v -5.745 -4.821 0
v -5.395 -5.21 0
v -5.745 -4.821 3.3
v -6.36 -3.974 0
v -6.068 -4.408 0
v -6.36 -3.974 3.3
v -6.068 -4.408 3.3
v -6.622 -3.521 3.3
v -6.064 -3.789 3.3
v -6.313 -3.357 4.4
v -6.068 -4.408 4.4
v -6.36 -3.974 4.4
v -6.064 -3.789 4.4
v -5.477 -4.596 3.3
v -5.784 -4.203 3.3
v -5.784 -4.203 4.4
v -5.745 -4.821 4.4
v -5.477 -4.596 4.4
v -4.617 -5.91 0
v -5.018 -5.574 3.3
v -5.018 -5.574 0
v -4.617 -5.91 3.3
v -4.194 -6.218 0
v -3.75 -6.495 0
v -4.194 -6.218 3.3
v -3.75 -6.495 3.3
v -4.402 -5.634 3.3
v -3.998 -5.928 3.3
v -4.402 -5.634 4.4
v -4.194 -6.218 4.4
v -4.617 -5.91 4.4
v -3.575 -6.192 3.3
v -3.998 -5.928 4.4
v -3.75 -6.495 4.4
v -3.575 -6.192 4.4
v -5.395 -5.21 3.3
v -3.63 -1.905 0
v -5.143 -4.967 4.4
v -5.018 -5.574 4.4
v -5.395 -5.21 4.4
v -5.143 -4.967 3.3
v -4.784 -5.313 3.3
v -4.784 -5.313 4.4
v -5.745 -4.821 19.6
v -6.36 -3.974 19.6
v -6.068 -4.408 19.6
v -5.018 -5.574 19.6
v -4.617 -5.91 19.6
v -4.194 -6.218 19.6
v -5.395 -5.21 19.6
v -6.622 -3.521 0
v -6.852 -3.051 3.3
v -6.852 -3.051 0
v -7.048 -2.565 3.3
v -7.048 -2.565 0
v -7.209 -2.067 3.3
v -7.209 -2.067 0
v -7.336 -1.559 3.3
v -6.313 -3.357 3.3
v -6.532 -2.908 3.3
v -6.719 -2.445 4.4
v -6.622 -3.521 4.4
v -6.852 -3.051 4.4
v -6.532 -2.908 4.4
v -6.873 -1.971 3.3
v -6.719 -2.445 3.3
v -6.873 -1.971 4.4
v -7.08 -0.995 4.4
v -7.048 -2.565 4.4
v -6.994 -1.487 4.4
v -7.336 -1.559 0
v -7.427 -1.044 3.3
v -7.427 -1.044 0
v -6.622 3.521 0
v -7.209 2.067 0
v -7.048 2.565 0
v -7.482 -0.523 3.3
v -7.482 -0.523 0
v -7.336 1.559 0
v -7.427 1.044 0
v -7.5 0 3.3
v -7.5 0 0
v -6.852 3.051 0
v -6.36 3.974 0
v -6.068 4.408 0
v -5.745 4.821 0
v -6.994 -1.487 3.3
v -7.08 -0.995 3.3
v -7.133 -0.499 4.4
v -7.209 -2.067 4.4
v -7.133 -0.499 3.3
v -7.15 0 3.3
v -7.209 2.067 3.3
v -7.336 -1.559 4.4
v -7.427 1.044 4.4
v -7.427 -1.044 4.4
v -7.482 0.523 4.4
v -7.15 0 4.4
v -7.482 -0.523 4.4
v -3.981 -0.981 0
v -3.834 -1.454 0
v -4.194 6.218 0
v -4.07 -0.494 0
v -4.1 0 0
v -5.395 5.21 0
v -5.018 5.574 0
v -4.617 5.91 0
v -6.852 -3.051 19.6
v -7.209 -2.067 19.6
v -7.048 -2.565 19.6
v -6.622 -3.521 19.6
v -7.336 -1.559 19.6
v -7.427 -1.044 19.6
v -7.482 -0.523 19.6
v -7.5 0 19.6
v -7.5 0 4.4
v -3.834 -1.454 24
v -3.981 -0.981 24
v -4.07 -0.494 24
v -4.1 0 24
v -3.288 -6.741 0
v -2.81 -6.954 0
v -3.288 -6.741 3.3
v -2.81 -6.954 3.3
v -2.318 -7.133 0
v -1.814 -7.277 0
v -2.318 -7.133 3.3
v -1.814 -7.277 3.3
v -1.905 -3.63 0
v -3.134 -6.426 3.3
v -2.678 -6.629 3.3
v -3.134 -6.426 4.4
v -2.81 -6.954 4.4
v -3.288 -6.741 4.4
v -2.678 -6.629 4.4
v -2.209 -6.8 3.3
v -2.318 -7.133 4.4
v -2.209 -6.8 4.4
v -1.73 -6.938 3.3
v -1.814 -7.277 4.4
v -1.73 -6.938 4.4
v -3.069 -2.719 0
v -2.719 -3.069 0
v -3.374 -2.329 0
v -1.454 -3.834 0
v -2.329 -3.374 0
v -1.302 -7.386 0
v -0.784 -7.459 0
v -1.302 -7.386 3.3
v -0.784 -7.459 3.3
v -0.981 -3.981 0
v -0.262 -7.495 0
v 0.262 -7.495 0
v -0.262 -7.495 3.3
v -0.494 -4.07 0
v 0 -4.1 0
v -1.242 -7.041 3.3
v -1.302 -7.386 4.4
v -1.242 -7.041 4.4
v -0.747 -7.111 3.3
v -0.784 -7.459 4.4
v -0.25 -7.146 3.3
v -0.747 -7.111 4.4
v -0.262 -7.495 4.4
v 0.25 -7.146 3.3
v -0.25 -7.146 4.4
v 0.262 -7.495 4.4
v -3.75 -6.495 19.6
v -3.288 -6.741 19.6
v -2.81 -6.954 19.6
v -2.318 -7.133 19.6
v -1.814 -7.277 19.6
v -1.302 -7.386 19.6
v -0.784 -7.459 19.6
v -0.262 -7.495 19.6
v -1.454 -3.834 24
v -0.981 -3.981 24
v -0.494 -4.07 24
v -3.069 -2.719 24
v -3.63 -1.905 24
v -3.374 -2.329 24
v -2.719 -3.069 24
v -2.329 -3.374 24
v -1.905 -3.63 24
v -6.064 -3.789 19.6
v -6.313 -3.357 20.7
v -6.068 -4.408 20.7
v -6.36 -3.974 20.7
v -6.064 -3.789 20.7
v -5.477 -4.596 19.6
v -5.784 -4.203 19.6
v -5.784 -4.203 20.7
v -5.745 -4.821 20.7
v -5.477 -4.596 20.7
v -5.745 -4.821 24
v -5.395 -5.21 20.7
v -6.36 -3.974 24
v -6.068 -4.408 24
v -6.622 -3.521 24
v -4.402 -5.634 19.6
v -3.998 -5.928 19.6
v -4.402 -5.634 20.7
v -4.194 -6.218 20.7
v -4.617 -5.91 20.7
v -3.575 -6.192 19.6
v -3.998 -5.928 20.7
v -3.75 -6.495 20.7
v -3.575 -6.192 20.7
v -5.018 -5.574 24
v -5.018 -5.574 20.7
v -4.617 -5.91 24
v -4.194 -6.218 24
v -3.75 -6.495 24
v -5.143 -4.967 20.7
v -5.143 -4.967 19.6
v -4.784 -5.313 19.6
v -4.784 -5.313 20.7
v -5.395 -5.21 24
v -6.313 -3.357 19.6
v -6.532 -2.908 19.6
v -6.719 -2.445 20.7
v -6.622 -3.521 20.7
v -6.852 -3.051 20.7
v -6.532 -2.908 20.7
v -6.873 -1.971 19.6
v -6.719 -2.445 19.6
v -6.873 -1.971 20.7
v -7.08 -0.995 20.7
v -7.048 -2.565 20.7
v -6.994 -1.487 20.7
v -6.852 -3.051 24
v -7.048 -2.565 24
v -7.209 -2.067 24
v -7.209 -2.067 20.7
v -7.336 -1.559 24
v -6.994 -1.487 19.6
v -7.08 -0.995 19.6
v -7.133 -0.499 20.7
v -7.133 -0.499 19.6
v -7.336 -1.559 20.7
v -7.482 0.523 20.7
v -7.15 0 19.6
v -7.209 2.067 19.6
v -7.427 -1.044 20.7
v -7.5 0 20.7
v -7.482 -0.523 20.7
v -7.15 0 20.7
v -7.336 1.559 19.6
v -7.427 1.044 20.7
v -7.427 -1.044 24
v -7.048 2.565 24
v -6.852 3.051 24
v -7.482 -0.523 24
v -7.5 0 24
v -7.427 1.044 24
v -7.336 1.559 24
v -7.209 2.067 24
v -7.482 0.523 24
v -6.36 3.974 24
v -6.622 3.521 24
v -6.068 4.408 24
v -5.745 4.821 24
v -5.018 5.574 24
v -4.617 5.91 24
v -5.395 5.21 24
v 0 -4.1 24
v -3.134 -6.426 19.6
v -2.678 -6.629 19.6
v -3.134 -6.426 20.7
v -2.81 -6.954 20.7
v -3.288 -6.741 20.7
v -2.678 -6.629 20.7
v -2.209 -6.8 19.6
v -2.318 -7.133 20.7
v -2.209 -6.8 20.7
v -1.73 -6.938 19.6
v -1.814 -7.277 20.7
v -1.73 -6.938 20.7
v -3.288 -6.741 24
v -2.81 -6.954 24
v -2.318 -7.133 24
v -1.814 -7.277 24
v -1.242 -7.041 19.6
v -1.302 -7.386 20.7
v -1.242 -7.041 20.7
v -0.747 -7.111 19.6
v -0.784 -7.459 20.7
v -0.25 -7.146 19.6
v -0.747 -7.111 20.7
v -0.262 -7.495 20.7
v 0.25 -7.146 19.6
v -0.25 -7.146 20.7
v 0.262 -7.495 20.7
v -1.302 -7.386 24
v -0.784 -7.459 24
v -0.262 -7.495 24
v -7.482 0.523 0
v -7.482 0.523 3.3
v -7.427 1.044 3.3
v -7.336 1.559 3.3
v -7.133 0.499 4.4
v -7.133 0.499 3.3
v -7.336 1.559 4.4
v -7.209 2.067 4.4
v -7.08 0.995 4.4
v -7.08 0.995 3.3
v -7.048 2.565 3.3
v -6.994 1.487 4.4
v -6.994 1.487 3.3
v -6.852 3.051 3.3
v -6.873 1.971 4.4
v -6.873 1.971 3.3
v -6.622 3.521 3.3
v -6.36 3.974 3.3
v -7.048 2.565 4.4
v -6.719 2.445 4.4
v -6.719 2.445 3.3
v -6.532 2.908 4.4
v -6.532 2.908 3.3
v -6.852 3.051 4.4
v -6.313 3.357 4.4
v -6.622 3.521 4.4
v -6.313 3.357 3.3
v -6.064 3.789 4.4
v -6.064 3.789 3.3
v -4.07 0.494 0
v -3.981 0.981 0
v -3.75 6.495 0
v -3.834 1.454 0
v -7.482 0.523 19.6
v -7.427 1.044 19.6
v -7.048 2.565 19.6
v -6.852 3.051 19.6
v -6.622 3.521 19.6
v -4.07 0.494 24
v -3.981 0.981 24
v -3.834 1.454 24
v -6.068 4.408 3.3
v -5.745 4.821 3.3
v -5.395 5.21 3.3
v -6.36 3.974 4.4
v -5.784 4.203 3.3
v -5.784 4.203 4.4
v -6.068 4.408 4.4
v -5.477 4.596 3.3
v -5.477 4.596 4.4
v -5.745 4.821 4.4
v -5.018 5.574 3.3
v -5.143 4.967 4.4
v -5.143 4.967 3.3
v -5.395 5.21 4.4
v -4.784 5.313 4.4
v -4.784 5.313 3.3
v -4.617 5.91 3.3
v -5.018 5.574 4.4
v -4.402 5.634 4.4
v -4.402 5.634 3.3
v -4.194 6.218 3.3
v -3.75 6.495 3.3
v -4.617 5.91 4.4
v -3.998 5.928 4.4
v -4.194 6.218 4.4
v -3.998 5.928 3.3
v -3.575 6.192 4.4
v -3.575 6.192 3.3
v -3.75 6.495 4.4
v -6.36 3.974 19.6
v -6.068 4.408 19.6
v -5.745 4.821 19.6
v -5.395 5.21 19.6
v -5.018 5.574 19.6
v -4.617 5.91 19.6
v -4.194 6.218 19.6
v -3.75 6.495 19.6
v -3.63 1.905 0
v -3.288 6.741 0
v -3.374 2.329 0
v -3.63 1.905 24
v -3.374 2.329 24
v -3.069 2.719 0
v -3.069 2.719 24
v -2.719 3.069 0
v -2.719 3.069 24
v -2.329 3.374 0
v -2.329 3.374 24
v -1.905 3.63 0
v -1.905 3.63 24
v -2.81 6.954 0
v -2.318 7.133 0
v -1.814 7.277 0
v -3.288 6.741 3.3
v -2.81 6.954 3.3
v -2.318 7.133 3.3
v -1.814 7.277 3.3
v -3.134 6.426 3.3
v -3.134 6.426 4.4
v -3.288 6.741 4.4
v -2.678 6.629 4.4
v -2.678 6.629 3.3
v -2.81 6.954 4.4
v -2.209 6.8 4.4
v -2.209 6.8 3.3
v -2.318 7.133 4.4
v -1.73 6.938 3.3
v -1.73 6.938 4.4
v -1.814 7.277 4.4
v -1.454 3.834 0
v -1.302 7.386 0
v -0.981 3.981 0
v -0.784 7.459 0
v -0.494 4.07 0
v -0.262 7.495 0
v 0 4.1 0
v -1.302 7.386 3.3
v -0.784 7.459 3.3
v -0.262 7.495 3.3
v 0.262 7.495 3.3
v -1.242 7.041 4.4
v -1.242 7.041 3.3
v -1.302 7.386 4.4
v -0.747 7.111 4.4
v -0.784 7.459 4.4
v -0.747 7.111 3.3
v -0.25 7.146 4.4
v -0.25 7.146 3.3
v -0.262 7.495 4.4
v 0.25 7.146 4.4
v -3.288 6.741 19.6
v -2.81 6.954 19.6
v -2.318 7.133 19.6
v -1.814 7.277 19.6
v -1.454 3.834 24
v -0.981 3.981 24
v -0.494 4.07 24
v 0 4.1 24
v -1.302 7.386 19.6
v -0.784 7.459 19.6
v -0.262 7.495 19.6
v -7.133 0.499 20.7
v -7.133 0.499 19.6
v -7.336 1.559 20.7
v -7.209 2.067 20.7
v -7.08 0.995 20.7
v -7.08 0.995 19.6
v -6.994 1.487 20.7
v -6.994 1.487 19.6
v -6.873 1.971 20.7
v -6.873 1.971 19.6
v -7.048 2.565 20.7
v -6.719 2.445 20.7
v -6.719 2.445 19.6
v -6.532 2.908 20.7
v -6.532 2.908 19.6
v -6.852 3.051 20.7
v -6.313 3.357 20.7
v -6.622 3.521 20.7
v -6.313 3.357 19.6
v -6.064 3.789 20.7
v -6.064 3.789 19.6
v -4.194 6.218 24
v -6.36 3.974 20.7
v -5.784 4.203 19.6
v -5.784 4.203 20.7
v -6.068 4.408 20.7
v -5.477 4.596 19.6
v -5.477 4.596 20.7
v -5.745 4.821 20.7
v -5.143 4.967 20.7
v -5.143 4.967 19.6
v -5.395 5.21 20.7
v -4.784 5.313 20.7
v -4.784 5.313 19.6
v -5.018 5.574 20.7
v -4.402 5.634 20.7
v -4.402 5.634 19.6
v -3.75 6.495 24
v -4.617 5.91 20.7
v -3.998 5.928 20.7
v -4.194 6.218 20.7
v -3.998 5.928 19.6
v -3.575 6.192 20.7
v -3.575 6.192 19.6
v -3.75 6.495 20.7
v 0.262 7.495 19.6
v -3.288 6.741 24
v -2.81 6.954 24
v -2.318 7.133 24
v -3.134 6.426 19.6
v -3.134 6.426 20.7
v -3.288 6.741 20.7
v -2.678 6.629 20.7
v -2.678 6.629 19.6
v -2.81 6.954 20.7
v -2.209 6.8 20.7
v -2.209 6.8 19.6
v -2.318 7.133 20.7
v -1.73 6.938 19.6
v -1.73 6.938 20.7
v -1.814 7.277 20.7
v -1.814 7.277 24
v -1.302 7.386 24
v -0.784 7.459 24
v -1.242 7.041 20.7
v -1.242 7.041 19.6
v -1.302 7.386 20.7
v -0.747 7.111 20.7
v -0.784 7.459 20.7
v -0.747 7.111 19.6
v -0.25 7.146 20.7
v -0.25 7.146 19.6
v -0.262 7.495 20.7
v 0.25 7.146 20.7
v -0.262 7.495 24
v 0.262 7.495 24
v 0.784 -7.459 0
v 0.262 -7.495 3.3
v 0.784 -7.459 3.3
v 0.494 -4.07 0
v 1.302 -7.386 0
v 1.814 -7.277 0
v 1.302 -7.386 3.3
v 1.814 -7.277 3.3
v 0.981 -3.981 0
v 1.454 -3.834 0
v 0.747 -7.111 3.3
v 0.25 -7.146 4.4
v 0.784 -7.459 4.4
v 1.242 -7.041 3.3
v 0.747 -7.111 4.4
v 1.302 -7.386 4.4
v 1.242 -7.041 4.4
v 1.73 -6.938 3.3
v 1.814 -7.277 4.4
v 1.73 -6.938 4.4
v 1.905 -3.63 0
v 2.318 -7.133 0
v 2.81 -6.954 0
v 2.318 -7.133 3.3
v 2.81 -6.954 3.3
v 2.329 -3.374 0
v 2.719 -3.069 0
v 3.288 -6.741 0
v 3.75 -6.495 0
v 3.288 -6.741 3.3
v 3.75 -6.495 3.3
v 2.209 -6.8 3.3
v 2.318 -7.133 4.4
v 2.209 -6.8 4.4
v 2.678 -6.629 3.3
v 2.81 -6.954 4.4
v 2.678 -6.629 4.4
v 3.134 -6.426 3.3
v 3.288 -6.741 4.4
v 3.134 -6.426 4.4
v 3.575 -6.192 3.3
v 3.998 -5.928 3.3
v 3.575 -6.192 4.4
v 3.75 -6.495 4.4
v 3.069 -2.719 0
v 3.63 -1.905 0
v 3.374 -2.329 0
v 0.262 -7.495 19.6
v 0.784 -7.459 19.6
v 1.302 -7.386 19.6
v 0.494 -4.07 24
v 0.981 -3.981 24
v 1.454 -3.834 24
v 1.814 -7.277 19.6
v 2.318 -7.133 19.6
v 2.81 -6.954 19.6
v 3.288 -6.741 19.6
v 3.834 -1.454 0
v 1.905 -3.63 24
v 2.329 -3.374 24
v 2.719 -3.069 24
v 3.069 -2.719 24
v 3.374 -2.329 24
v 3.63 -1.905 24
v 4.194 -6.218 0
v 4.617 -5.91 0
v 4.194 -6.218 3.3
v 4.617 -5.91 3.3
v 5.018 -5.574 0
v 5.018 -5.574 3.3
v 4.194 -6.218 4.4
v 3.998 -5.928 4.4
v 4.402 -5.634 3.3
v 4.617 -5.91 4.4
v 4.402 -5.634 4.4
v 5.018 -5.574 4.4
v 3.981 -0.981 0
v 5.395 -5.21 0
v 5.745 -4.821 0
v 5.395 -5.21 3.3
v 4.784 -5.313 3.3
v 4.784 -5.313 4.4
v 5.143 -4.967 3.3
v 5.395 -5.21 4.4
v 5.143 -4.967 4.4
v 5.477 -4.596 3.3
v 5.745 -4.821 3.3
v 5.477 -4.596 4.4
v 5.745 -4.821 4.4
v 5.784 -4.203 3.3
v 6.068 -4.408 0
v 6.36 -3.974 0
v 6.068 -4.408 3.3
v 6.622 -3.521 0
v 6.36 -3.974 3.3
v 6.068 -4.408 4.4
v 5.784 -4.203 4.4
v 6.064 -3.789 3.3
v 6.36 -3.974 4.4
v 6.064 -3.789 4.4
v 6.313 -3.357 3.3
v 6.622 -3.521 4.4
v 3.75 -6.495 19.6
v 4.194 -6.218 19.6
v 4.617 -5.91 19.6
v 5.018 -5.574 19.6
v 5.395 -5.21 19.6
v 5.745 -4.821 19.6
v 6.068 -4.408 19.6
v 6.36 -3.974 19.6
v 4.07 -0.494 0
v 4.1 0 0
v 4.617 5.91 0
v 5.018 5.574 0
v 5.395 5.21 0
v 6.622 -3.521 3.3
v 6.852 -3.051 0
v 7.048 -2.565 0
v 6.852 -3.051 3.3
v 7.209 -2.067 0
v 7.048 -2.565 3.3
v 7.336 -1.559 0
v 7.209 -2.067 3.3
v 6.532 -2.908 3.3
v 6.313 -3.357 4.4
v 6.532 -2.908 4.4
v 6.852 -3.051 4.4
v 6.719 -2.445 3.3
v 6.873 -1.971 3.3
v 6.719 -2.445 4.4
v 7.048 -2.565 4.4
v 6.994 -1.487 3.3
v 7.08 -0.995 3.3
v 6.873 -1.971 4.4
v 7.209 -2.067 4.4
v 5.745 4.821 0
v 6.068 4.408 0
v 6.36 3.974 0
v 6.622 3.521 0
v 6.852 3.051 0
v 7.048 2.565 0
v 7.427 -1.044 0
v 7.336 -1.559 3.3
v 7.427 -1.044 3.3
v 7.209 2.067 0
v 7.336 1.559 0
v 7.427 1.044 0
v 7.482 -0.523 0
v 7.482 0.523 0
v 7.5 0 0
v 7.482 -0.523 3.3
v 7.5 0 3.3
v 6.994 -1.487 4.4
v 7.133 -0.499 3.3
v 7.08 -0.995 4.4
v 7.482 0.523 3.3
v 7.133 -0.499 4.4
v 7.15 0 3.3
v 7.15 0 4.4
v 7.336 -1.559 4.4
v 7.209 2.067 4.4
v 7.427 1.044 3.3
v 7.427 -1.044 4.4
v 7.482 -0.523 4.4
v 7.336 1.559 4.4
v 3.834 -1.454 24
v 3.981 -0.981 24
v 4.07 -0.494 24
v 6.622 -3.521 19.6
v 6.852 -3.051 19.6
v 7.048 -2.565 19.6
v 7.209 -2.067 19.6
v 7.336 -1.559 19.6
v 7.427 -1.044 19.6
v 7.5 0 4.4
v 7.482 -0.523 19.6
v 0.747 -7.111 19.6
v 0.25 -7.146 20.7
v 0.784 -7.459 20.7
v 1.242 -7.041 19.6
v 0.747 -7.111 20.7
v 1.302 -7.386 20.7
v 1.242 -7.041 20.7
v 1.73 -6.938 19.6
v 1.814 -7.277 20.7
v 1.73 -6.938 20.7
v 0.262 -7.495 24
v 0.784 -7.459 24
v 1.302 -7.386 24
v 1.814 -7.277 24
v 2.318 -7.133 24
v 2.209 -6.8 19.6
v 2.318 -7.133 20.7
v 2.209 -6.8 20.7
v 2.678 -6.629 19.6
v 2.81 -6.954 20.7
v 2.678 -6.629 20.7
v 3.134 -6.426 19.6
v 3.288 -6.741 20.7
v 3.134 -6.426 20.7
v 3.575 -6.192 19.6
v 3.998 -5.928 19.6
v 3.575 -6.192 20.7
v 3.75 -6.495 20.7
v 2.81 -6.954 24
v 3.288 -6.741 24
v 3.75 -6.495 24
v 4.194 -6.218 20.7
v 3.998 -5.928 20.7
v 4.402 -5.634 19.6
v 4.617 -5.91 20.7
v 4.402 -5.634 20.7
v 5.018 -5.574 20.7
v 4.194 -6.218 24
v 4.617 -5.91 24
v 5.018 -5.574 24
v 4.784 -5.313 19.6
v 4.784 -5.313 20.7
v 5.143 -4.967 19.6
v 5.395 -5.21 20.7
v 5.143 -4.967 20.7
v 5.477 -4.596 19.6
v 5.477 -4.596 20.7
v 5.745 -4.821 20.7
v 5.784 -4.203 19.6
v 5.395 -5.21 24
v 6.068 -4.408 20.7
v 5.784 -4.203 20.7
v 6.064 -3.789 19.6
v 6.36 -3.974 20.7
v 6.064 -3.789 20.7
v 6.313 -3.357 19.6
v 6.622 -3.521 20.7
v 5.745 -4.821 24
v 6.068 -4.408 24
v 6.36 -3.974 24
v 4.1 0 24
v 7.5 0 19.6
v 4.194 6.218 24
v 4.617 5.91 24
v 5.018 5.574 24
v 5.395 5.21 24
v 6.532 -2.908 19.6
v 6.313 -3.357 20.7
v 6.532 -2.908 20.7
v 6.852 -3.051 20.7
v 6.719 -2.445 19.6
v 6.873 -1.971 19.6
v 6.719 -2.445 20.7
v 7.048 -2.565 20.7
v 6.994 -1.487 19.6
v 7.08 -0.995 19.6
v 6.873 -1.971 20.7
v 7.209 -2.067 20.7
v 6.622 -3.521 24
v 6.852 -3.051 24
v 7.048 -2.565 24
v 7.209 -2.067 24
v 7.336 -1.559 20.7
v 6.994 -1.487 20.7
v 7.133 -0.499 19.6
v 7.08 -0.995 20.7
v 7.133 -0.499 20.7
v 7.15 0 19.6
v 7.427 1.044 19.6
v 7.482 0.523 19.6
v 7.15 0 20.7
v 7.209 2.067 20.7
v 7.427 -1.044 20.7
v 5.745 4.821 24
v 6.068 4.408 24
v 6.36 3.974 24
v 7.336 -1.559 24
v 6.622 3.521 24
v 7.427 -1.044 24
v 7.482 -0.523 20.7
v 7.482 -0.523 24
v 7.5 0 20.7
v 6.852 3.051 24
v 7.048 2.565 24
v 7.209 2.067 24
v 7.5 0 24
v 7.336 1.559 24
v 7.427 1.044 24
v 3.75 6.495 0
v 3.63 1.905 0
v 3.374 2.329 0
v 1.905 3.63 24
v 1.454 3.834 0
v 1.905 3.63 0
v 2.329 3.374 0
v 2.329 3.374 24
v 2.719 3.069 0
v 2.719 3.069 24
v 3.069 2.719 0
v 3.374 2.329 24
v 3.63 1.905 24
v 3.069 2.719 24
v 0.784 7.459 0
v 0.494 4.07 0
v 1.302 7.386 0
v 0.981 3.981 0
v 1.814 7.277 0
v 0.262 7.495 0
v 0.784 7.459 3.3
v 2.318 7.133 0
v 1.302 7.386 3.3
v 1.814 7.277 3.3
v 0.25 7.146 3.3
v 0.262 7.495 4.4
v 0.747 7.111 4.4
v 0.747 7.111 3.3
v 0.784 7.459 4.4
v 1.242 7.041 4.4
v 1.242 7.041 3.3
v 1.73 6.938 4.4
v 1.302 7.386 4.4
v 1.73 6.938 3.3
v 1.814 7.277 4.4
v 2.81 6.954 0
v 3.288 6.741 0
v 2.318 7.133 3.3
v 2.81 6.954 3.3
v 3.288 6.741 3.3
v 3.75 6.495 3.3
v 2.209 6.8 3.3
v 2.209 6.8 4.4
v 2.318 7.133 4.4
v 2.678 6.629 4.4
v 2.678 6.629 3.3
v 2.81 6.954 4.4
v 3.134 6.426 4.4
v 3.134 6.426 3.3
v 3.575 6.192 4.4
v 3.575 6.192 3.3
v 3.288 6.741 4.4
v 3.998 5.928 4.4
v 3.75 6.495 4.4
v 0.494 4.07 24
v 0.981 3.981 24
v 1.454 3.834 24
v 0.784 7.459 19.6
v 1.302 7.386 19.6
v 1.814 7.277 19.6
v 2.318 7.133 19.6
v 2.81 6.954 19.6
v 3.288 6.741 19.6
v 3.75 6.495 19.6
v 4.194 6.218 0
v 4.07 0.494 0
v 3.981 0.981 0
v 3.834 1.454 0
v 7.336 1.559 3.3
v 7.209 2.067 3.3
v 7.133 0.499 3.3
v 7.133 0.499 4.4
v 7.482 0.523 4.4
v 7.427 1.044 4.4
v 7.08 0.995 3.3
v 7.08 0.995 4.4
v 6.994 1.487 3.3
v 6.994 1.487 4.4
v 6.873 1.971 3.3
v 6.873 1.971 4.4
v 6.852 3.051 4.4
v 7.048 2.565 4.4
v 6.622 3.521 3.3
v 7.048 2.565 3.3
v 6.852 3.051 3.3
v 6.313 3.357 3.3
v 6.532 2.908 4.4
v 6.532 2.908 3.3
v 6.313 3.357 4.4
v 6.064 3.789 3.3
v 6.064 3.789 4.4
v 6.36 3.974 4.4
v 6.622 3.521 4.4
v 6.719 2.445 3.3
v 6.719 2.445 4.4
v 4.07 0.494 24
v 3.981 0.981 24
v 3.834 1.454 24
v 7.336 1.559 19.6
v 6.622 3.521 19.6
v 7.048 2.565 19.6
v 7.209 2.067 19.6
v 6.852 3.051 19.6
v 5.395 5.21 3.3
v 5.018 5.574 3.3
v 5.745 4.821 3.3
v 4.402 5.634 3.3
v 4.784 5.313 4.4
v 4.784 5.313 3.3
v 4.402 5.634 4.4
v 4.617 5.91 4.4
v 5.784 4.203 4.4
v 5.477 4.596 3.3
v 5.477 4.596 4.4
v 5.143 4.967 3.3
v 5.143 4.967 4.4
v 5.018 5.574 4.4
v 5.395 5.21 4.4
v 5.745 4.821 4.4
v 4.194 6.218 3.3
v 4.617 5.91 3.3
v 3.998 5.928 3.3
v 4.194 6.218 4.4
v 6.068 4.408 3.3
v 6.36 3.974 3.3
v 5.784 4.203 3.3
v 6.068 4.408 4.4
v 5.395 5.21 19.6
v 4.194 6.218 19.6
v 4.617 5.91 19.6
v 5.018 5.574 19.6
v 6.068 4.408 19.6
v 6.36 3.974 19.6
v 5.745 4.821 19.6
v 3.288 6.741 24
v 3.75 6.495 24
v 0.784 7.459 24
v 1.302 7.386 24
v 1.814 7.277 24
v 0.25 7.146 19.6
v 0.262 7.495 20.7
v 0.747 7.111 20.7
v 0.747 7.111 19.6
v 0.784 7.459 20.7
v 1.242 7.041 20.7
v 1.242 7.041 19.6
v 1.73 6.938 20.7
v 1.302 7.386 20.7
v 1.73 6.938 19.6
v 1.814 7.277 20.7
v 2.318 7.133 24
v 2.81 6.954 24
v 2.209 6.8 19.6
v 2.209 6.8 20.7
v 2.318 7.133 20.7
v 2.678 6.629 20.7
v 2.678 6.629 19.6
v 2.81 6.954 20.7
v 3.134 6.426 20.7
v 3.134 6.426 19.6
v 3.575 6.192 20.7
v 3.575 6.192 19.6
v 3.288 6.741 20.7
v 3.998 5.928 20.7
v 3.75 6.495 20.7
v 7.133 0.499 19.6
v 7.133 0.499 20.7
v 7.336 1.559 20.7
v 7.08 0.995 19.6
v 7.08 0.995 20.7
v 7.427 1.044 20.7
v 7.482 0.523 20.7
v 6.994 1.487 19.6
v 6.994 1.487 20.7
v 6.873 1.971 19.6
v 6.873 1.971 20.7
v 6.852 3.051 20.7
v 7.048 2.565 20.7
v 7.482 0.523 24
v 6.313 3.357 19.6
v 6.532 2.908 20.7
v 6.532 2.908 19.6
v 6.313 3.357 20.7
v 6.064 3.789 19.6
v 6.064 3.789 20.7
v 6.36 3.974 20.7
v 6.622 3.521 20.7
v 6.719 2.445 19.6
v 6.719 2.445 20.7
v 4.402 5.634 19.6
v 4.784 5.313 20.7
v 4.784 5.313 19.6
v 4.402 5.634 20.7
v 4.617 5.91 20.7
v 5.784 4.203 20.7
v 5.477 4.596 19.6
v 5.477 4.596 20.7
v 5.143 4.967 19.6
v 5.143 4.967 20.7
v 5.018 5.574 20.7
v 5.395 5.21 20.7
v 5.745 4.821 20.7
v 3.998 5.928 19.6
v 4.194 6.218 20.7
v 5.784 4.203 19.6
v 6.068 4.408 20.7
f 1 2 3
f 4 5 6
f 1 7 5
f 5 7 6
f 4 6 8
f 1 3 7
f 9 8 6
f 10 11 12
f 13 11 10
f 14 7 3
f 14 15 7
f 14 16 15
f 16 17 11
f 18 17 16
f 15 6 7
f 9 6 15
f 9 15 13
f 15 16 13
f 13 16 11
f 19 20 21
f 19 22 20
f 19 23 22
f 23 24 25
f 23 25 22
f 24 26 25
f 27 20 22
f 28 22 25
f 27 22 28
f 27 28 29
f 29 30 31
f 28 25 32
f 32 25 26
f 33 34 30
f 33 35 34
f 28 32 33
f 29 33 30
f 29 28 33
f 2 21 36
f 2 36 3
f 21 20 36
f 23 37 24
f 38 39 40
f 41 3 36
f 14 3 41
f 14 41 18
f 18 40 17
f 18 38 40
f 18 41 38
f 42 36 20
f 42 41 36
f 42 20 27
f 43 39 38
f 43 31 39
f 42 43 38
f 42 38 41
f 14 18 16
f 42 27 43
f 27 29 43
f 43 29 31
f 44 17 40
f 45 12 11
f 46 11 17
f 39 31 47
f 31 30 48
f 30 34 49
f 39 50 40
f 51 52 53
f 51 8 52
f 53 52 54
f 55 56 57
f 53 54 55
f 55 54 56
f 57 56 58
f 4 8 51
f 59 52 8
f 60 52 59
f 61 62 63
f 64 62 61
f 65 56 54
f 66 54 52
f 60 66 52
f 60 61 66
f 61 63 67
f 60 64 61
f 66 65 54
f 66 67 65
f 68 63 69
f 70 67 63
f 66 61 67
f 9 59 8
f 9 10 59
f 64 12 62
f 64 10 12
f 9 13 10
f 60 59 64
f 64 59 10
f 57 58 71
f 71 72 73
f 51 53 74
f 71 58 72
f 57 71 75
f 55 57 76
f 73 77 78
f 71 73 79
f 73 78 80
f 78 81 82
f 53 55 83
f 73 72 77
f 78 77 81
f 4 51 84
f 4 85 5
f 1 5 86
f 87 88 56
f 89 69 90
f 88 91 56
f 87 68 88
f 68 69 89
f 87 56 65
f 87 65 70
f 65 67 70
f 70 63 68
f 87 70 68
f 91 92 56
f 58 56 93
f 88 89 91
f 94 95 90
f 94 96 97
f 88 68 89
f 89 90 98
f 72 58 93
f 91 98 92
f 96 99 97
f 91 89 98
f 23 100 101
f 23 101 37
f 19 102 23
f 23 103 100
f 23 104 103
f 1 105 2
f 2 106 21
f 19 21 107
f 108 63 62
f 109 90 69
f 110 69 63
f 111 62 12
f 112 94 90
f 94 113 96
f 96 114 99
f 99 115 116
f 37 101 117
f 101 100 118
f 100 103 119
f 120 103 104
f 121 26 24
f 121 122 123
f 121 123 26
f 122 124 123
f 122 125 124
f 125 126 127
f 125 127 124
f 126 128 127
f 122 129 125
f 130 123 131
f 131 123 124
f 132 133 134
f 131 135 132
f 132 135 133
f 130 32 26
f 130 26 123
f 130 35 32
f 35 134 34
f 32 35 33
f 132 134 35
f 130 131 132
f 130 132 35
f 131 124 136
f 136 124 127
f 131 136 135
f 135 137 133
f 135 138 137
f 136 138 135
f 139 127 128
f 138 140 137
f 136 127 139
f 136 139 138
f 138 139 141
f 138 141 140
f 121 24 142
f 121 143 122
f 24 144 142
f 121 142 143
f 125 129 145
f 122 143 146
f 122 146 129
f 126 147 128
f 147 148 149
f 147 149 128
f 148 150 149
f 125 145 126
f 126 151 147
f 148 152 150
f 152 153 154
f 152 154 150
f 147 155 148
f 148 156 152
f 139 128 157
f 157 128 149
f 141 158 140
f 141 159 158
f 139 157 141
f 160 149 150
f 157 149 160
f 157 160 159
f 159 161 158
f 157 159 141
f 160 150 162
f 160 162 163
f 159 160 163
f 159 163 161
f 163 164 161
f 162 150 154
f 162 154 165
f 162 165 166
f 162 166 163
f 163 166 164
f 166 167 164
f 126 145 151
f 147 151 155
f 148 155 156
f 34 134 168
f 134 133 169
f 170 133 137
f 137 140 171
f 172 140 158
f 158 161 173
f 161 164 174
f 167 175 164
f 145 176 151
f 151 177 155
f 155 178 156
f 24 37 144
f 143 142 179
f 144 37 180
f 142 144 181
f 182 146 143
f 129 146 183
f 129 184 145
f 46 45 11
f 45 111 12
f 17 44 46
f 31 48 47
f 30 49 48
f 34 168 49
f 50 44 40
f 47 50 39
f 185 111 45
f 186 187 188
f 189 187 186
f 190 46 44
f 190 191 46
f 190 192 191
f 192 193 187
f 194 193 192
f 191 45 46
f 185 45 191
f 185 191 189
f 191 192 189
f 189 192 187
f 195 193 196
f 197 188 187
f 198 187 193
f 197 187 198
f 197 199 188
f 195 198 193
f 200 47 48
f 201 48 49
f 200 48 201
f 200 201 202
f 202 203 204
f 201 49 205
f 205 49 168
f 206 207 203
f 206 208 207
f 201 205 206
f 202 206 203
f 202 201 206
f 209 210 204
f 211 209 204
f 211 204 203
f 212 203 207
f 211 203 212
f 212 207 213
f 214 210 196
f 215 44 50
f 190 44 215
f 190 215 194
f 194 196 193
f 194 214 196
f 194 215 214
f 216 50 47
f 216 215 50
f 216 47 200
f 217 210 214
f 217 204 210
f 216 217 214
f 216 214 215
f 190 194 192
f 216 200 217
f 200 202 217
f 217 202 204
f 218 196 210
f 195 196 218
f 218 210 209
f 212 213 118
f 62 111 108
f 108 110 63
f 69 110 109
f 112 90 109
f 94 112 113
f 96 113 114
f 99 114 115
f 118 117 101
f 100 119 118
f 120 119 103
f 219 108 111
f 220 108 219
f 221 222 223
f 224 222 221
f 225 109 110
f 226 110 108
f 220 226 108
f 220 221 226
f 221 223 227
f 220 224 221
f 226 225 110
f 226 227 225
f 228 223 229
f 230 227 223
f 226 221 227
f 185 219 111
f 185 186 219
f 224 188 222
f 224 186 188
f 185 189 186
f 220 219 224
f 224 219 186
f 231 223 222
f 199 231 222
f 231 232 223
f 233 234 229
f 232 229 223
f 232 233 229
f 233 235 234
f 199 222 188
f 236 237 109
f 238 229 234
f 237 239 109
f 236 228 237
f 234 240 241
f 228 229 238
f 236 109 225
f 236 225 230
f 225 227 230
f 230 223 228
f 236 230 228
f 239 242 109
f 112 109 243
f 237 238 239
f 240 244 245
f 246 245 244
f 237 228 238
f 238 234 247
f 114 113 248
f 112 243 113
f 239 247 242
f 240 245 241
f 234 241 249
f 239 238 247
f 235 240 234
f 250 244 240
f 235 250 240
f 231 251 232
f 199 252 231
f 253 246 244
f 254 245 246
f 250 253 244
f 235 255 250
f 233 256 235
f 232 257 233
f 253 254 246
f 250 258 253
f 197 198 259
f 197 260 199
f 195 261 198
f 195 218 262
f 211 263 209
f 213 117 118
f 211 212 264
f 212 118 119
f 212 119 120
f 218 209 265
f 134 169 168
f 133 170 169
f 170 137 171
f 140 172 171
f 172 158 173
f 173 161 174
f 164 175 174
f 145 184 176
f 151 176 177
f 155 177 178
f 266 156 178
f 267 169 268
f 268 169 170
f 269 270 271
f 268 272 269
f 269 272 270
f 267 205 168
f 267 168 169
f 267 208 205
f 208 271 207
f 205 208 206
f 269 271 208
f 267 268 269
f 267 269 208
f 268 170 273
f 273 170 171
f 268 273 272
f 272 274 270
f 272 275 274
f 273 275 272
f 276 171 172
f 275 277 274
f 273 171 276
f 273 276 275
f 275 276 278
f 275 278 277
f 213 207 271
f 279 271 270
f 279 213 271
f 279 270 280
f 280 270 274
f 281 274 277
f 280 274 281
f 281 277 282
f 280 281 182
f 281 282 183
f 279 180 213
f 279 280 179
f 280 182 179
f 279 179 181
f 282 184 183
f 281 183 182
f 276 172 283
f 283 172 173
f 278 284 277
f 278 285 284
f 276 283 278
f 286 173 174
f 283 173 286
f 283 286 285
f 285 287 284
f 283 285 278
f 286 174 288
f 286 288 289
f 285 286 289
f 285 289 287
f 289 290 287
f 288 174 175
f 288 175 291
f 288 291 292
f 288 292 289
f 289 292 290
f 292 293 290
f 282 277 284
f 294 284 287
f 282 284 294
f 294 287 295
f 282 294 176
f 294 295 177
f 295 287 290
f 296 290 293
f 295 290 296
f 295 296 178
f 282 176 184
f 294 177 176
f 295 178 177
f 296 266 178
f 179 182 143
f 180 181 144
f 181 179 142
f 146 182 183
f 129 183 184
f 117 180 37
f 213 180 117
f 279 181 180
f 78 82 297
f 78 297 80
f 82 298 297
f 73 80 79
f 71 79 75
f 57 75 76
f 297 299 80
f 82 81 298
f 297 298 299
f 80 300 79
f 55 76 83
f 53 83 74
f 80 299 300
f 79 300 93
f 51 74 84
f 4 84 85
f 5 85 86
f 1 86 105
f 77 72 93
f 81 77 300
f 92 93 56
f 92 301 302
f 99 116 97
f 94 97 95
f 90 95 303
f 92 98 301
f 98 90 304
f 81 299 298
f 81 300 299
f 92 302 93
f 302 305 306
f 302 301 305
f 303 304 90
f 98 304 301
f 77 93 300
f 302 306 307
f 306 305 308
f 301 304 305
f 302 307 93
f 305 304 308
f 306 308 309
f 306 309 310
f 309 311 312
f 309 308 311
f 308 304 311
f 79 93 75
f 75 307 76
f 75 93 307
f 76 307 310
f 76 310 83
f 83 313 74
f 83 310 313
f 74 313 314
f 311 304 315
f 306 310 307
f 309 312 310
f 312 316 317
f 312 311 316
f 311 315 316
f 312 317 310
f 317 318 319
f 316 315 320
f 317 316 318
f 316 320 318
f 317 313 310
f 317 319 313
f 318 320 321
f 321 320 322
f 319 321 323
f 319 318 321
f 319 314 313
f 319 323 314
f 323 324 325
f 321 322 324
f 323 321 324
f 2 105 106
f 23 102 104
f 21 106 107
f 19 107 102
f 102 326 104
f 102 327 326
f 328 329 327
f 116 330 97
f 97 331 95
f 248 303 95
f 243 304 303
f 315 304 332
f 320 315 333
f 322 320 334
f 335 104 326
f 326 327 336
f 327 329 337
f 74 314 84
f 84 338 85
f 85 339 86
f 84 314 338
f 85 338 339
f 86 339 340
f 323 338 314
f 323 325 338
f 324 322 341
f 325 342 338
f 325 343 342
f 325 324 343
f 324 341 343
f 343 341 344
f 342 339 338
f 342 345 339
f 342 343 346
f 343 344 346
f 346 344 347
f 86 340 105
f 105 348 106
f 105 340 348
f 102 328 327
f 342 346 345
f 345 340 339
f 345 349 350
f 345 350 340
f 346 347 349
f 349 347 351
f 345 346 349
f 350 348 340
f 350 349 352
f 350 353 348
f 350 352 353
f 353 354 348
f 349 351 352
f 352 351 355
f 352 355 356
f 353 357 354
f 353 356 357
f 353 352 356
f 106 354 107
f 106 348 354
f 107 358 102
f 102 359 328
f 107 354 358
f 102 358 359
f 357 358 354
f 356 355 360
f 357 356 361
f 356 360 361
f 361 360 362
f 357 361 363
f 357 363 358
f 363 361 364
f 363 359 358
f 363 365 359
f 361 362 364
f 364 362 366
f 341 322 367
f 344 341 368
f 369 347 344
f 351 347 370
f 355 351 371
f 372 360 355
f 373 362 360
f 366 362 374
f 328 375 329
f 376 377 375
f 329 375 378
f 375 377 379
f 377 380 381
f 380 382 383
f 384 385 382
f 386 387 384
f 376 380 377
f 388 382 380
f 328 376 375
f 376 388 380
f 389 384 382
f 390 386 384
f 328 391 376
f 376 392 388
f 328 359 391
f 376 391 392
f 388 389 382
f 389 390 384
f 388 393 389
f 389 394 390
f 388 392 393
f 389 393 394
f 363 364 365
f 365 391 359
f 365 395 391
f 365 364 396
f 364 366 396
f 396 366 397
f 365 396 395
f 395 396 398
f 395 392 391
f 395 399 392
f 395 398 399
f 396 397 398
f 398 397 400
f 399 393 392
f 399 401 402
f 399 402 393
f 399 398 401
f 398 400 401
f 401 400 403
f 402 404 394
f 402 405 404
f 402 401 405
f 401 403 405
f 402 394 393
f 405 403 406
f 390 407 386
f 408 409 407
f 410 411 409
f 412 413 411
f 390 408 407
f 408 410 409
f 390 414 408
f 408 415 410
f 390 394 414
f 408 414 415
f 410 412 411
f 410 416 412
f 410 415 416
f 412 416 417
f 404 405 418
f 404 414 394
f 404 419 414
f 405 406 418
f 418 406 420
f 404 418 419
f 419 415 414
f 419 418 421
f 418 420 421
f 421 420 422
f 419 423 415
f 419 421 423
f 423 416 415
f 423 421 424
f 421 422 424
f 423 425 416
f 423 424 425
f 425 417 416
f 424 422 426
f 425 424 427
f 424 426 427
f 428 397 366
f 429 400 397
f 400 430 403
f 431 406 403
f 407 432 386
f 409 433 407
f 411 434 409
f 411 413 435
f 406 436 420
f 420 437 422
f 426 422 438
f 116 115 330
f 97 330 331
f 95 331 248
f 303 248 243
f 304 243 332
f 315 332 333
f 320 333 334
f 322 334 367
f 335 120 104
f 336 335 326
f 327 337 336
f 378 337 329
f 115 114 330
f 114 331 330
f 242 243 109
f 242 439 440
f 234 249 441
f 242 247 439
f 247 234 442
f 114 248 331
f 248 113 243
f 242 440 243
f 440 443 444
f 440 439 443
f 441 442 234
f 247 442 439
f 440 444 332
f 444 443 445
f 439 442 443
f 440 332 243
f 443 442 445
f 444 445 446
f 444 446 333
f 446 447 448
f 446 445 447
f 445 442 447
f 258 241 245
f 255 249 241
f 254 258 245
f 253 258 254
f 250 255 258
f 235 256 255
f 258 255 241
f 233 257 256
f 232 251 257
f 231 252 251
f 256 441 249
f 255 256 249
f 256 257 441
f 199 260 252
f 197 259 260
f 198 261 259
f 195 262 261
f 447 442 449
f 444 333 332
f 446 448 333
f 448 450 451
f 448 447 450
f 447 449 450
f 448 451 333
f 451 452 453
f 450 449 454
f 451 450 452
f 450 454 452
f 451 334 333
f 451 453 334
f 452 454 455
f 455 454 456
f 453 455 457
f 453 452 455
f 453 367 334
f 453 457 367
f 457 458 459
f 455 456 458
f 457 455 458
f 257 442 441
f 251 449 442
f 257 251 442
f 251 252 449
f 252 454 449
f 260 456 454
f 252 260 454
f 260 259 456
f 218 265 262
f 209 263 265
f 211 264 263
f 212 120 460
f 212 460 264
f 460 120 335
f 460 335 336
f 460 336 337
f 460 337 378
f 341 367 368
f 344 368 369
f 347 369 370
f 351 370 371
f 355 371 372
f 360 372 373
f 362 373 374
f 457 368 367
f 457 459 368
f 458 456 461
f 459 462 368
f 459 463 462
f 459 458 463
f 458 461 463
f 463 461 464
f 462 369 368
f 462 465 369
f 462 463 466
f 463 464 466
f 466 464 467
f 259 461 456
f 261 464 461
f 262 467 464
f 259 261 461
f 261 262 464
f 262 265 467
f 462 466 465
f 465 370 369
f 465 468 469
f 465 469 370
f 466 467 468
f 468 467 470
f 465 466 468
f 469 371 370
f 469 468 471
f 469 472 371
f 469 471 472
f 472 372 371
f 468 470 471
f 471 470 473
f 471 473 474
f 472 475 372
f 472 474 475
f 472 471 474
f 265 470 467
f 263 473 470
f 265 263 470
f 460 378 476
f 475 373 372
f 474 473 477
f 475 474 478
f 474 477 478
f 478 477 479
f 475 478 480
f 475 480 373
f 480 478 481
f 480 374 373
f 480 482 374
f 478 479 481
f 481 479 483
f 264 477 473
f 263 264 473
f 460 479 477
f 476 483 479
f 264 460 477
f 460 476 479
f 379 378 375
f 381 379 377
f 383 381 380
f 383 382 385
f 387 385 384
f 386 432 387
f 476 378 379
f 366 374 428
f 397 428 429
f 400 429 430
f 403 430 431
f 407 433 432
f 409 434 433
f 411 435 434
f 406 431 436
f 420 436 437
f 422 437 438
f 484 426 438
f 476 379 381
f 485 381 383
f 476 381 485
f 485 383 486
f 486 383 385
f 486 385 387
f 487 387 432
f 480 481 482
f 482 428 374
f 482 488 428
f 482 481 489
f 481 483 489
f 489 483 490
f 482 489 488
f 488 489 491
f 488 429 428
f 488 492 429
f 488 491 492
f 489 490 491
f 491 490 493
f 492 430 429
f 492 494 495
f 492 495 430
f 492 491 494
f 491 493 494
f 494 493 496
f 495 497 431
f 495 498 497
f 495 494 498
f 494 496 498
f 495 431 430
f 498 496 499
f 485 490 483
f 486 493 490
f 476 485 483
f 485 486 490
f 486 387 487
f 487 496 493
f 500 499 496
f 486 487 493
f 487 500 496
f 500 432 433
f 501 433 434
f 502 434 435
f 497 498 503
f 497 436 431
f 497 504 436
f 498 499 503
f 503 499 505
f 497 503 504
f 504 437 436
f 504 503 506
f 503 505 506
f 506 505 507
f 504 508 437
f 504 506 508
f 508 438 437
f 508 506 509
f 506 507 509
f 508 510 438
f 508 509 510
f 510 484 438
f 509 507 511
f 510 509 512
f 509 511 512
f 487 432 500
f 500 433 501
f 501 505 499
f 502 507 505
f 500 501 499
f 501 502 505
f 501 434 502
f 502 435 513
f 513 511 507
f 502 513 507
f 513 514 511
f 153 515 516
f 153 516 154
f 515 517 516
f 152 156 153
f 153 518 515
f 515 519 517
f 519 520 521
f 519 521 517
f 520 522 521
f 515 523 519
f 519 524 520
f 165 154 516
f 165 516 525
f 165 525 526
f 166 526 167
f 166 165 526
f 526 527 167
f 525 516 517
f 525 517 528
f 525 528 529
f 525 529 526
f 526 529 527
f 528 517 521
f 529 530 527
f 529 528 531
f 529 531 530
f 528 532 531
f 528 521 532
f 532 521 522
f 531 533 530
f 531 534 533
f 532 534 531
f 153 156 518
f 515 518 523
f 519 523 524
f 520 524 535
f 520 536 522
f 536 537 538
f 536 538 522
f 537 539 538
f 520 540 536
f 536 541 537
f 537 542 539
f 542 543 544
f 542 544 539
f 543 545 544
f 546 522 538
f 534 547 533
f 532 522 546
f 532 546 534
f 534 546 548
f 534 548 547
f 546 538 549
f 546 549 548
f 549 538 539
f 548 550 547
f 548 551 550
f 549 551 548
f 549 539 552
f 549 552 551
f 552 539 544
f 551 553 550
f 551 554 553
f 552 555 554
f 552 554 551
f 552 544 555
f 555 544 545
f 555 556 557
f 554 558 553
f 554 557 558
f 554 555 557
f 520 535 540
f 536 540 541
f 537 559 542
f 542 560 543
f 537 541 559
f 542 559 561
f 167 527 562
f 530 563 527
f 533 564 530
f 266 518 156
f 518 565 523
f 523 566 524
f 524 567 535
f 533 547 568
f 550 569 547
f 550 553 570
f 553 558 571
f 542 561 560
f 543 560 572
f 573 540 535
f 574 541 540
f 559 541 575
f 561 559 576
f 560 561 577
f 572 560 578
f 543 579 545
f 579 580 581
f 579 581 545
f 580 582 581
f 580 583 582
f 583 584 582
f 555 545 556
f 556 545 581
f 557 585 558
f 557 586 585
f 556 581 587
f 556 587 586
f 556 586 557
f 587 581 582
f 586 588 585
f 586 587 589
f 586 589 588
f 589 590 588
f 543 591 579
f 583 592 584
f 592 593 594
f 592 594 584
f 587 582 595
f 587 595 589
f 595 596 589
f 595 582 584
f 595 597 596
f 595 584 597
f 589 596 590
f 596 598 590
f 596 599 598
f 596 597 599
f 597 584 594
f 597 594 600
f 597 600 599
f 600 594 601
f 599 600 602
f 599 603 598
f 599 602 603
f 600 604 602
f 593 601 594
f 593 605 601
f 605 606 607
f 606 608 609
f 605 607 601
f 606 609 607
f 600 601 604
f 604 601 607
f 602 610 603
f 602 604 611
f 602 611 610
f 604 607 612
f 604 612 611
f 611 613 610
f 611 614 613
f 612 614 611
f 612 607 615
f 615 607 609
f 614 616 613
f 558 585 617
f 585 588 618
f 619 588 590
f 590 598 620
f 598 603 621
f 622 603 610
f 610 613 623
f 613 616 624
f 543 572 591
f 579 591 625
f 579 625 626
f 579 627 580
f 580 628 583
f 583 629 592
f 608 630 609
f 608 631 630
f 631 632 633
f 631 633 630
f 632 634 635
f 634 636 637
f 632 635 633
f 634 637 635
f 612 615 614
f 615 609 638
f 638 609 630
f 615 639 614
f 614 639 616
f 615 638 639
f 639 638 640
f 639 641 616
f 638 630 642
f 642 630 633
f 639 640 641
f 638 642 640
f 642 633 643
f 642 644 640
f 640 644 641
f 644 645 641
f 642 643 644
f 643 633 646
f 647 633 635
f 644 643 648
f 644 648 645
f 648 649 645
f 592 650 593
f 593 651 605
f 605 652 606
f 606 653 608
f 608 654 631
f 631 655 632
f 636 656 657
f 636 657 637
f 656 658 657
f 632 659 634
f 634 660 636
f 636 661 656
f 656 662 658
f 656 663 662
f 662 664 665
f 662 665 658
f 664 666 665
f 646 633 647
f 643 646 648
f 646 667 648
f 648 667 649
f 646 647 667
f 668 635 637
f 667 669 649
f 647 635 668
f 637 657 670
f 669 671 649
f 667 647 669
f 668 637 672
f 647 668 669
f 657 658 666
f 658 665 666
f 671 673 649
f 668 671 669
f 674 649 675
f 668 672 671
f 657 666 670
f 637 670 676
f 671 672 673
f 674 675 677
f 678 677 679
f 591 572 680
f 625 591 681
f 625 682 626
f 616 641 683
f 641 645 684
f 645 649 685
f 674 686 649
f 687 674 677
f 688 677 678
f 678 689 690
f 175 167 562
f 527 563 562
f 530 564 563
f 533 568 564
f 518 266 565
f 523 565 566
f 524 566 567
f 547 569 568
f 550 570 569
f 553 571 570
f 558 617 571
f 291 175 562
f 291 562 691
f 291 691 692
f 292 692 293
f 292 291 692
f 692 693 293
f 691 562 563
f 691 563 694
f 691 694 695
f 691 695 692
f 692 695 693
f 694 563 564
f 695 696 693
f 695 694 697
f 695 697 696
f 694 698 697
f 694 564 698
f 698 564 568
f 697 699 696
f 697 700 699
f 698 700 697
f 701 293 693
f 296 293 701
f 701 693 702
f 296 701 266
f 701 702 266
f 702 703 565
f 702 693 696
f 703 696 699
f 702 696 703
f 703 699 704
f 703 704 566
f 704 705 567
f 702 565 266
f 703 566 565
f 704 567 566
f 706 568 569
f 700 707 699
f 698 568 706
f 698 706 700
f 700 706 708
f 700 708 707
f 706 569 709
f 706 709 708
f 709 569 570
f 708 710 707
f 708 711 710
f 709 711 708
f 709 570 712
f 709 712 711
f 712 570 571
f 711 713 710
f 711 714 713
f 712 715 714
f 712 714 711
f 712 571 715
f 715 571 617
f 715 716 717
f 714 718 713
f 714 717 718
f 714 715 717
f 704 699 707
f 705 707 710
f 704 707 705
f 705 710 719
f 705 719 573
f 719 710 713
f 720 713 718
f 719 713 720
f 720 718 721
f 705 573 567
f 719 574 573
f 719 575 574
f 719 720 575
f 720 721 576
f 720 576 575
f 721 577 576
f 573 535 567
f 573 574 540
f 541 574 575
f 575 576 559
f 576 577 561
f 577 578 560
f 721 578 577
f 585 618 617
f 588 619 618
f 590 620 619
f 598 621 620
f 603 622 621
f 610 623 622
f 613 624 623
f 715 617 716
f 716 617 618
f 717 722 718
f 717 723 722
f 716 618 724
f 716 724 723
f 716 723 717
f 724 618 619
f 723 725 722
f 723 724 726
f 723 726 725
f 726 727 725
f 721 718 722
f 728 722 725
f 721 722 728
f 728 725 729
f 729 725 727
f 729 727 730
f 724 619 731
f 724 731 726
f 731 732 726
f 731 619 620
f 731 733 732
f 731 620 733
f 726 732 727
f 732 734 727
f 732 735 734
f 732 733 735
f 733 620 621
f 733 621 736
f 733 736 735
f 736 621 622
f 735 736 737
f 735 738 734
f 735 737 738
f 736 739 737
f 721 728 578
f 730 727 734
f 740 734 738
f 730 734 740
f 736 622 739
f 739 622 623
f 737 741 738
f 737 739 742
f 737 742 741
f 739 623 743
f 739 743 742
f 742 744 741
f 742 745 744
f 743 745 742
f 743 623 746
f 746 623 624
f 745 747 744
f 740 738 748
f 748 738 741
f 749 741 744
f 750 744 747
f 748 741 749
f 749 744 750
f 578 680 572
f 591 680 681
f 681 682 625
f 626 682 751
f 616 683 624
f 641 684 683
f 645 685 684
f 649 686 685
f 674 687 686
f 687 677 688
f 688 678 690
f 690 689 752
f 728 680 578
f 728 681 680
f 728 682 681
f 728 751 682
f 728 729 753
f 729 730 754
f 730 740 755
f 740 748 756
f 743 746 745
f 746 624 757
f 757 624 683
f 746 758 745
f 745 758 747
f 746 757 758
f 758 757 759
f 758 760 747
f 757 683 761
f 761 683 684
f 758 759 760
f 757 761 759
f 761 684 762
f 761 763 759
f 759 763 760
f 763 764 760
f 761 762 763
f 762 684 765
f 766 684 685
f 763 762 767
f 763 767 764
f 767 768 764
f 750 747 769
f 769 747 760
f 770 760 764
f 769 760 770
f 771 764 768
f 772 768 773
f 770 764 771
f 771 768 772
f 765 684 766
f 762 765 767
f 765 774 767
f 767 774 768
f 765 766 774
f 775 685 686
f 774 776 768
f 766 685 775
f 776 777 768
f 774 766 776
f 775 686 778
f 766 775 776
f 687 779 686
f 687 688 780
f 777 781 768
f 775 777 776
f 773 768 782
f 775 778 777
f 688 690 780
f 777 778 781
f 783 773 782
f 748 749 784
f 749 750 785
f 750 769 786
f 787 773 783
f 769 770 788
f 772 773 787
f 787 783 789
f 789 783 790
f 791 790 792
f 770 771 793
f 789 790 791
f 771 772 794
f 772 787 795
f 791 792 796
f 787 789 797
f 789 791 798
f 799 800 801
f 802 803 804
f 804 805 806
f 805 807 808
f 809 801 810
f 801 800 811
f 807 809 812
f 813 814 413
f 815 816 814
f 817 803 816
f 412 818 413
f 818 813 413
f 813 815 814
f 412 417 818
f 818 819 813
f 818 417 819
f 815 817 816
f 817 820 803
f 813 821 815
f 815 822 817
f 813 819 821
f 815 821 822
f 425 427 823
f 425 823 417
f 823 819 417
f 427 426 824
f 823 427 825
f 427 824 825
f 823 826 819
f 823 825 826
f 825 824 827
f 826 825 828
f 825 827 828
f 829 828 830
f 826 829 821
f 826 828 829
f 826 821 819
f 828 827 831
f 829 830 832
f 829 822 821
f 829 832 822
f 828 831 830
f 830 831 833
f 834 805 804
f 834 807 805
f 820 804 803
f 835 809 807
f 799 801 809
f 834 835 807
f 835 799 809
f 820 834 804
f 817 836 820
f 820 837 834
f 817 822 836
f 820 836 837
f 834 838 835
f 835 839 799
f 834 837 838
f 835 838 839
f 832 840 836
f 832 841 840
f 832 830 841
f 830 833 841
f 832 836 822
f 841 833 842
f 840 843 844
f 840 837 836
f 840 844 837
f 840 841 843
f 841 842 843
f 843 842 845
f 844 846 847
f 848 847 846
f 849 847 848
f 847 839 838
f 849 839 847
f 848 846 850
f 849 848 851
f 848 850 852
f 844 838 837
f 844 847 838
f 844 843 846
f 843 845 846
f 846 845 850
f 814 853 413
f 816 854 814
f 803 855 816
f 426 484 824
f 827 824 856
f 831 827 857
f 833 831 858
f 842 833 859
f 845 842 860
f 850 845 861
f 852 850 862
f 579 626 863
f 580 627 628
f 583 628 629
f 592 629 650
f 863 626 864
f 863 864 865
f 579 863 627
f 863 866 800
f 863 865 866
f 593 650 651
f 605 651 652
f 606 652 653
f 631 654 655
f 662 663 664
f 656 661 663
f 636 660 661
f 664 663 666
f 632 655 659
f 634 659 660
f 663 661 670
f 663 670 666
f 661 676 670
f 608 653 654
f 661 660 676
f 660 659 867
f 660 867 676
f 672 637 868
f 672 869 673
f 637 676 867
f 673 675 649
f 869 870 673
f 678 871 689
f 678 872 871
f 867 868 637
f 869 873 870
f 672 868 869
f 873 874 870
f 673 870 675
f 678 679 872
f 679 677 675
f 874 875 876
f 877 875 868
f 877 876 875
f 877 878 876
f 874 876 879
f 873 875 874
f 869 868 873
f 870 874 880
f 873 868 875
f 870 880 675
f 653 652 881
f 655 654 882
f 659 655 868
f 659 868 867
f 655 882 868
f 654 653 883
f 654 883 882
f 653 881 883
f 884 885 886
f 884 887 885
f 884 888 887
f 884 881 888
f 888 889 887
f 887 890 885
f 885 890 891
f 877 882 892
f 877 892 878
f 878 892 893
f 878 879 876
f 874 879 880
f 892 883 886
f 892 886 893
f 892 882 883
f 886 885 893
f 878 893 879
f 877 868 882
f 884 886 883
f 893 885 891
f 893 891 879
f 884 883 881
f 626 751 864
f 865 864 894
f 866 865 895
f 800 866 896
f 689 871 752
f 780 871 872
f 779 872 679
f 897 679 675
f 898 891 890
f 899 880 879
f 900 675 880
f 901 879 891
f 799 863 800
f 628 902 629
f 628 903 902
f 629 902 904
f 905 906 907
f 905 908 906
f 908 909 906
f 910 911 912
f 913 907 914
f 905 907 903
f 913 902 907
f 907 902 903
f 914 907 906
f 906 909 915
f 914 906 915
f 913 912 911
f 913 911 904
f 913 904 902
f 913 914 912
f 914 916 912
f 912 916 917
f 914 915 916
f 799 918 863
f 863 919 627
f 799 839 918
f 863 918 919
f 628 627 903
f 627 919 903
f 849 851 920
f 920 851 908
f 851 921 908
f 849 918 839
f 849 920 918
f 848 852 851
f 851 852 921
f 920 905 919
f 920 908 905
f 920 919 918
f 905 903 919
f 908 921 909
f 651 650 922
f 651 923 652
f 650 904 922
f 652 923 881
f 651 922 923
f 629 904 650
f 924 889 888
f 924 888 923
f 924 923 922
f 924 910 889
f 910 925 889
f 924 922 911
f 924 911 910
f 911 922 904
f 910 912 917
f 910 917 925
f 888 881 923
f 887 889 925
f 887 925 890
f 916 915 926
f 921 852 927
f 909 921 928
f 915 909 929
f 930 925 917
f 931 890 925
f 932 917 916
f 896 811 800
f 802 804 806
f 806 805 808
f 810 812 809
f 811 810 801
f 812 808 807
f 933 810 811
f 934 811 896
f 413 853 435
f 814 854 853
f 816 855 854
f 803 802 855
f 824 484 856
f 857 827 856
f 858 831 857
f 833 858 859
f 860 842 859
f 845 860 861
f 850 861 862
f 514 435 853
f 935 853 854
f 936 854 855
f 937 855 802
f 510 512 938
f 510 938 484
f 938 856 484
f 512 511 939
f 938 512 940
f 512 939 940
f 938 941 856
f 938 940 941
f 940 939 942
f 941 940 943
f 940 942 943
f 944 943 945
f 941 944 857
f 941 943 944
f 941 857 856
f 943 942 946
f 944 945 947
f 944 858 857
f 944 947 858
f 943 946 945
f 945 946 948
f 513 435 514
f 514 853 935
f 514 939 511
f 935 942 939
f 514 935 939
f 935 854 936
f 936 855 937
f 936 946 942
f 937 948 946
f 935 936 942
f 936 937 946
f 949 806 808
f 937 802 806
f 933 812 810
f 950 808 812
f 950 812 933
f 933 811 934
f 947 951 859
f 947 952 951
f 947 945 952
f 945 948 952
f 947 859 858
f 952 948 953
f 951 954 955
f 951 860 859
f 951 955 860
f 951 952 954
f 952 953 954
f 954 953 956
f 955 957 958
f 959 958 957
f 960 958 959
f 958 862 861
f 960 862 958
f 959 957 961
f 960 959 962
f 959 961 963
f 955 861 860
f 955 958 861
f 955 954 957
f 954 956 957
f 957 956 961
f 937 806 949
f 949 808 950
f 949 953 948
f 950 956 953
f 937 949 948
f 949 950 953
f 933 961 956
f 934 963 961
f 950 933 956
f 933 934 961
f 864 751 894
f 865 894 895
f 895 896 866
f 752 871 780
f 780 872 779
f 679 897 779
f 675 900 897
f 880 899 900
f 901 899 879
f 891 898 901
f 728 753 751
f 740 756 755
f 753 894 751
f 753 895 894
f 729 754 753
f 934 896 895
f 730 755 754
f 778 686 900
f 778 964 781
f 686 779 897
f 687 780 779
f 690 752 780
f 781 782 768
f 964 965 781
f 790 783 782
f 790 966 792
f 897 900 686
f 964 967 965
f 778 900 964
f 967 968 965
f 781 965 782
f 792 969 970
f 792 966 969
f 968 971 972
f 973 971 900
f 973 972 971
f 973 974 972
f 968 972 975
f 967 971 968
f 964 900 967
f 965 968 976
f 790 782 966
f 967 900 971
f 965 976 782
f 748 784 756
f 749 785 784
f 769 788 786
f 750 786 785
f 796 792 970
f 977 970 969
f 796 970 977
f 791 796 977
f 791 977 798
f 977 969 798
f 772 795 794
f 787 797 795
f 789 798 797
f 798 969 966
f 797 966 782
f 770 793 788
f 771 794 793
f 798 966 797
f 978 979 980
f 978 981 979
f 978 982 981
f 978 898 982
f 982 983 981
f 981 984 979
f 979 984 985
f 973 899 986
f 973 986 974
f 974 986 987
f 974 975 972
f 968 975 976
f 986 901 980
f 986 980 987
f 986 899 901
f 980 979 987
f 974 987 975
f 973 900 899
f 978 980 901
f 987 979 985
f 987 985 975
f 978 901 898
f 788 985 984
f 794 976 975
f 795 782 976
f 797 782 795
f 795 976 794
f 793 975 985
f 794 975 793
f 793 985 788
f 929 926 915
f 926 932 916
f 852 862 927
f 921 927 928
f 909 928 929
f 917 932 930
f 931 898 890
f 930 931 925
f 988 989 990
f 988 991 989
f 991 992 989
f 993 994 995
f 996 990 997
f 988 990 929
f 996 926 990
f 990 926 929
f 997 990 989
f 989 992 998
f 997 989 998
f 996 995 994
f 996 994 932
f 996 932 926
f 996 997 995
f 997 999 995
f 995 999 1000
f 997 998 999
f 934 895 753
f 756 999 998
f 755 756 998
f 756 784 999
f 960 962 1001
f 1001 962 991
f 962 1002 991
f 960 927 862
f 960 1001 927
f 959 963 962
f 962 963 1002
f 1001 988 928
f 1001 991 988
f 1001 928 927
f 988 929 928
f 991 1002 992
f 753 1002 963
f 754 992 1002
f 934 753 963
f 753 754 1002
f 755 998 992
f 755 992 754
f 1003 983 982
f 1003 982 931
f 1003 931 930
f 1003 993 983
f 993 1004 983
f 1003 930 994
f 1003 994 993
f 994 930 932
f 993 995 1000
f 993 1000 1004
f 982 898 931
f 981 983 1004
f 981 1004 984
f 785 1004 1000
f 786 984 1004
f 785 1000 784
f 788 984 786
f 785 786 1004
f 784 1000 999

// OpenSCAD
// file: ../lib/lib.scad
// Shared helpers. Include AFTER params.scad (needs TOL, M3_* etc.).
$fa = 4; $fs = 0.5;

module rrect(size, r) {            // 2D rounded rectangle, centred
    r2 = min(r, min(size[0], size[1]) / 2 - 0.001);
    offset(r = r2) square([size[0] - 2 * r2, size[1] - 2 * r2], center = true);
}
module rbox(size, r, center_xy = true) {   // box with rounded vertical edges
    translate(center_xy ? [0, 0, 0] : [size[0] / 2, size[1] / 2, 0])
        linear_extrude(size[2]) rrect([size[0], size[1]], r);
}
module rbox_at(x0, x1, y0, y1, z0, z1, r = 0.01) {
    translate([(x0 + x1) / 2, (y0 + y1) / 2, z0]) rbox([x1 - x0, y1 - y0, z1 - z0], r);
}
module box_at(x0, x1, y0, y1, z0, z1) { translate([x0, y0, z0]) cube([x1 - x0, y1 - y0, z1 - z0]); }

module ring(ro, ri, h) { difference() { cylinder(r = ro, h = h); translate([0, 0, -1]) cylinder(r = ri, h = h + 2); } }
module ring_sector(ro, ri, h, a0, a1) {
    intersection() {
        ring(ro, ri, h);
        linear_extrude(h) polygon(concat([[0, 0]], [for (a = [a0 : (a1 - a0) / 24 : a1]) 2 * ro * [cos(a), sin(a)]]));
    }
}
// teardrop hole along an axis lying horizontal (axis = Y after rotation), printable w/o support
module teardrop2d(d) { union() { circle(d = d); rotate(45) square(d / 2); } }
// vertical heat-set insert hole, opening at z=0 going +z (depth l)
module insert_hole(l = M3_INSERT_L) { translate([0, 0, -EPS]) cylinder(d = M3_INSERT_D, h = l + EPS); }
module m3_clear(l) { translate([0, 0, -EPS]) cylinder(d = M3_CLEAR, h = l + 2 * EPS); }
module m3_csk(l) {  // countersunk clearance from z=0 upward, head at z=0 side
    translate([0, 0, -EPS]) { cylinder(d = M3_CLEAR, h = l + 2 * EPS); cylinder(d1 = 6.4, d2 = M3_CLEAR, h = 1.7); }
}
module card2d() { rrect([CARD_L, CARD_W], CARD_R); }
module card_at(cy, z) { translate([0, cy, z]) linear_extrude(CARD_T) card2d(); }

// ---- gears ----
function _inv(a) = tan(a) - a * PI_ / 180;           // involute function, a in deg
function _invpt(rb, r, ang0, s) = let(al = acos(rb / r), th = ang0 - s * (_inv(al) * 180 / PI_)) [r * cos(th), r * sin(th)];
module involute_gear2d(m, z, pa = 20, clearance = 0.05) {
    rp = m * z / 2; rb = rp * cos(pa); ra = rp + m - clearance; rf = rp - 1.25 * m;
    half = 90 / z + _inv(pa) * 180 / PI_;            // tooth half-angle at base (deg)
    n = 8;
    rs = [for (i = [0 : n]) max(rb, rf) + (ra - max(rb, rf)) * i / n];
    union() {
        circle(r = rf, $fn = z * 4);
        for (k = [0 : z - 1]) rotate(k * 360 / z) polygon(concat(
            [[rf * cos(-half), rf * sin(-half)]],
            [for (r = rs) let(p = _invpt(rb, r, half, 1)) [p[0], -p[1]]],
            [for (i = [n : -1 : 0]) _invpt(rb, rs[i], half, 1)],
            [[rf * cos(half), rf * sin(half)]]));
    }
}
// straight gear rack (2D in XY: teeth along +x, pointing -y, pitch line at y=0)
module gear_rack2d(m, len, back = 3) {
    p = PI_ * m; ad = m; de = 1.25 * m; t = tan(20);
    n = ceil(len / p) + 1;
    intersection() {
        union() {
            translate([0, de]) square([len, back]);
            for (i = [0 : n]) translate([i * p - p / 4, 0]) polygon([
                [-(p / 4 + de * t), de + 0.01], [p / 4 + de * t + 0.01, de + 0.01],
                [p / 4 - ad * t, -ad], [-(p / 4 - ad * t), -ad] ]);
        }
        translate([0, -ad - 1]) square([len, ad + de + back + 2]);
    }
}
// GT2 belt-tooth profile ring (teeth outward), 2D
module gt2_ring2d(n, r_land, ri) {
    union() {
        difference() { circle(r = r_land + 0.01, $fn = n * 2); circle(r = ri, $fn = n * 2); }
        for (k = [0 : n - 1]) rotate(k * 360 / n)
            translate([r_land, 0]) hull() { translate([-0.2, 0]) square([0.2, 1.0], center = true); translate([0.25, 0]) circle(r = 0.5, $fn = 12); }
    }
}
// main file
// Vendor model: LM8UU linear ball bearing 8x15x24. Local: z 0..24.
include <../params.scad>
include <../lib/lib.scad>
module vendor_lm8uu() color([0.6,0.62,0.66]) difference() {
    cylinder(d = LM8_D, h = LM8_L);
    translate([0, 0, -1]) cylinder(d = ROD_D + 0.2, h = LM8_L + 2);
    for (z = [3.3, LM8_L - 4.4]) translate([0, 0, z]) ring(LM8_D / 2 + 1, 14.3 / 2, 1.1);
}

vendor_lm8uu();
